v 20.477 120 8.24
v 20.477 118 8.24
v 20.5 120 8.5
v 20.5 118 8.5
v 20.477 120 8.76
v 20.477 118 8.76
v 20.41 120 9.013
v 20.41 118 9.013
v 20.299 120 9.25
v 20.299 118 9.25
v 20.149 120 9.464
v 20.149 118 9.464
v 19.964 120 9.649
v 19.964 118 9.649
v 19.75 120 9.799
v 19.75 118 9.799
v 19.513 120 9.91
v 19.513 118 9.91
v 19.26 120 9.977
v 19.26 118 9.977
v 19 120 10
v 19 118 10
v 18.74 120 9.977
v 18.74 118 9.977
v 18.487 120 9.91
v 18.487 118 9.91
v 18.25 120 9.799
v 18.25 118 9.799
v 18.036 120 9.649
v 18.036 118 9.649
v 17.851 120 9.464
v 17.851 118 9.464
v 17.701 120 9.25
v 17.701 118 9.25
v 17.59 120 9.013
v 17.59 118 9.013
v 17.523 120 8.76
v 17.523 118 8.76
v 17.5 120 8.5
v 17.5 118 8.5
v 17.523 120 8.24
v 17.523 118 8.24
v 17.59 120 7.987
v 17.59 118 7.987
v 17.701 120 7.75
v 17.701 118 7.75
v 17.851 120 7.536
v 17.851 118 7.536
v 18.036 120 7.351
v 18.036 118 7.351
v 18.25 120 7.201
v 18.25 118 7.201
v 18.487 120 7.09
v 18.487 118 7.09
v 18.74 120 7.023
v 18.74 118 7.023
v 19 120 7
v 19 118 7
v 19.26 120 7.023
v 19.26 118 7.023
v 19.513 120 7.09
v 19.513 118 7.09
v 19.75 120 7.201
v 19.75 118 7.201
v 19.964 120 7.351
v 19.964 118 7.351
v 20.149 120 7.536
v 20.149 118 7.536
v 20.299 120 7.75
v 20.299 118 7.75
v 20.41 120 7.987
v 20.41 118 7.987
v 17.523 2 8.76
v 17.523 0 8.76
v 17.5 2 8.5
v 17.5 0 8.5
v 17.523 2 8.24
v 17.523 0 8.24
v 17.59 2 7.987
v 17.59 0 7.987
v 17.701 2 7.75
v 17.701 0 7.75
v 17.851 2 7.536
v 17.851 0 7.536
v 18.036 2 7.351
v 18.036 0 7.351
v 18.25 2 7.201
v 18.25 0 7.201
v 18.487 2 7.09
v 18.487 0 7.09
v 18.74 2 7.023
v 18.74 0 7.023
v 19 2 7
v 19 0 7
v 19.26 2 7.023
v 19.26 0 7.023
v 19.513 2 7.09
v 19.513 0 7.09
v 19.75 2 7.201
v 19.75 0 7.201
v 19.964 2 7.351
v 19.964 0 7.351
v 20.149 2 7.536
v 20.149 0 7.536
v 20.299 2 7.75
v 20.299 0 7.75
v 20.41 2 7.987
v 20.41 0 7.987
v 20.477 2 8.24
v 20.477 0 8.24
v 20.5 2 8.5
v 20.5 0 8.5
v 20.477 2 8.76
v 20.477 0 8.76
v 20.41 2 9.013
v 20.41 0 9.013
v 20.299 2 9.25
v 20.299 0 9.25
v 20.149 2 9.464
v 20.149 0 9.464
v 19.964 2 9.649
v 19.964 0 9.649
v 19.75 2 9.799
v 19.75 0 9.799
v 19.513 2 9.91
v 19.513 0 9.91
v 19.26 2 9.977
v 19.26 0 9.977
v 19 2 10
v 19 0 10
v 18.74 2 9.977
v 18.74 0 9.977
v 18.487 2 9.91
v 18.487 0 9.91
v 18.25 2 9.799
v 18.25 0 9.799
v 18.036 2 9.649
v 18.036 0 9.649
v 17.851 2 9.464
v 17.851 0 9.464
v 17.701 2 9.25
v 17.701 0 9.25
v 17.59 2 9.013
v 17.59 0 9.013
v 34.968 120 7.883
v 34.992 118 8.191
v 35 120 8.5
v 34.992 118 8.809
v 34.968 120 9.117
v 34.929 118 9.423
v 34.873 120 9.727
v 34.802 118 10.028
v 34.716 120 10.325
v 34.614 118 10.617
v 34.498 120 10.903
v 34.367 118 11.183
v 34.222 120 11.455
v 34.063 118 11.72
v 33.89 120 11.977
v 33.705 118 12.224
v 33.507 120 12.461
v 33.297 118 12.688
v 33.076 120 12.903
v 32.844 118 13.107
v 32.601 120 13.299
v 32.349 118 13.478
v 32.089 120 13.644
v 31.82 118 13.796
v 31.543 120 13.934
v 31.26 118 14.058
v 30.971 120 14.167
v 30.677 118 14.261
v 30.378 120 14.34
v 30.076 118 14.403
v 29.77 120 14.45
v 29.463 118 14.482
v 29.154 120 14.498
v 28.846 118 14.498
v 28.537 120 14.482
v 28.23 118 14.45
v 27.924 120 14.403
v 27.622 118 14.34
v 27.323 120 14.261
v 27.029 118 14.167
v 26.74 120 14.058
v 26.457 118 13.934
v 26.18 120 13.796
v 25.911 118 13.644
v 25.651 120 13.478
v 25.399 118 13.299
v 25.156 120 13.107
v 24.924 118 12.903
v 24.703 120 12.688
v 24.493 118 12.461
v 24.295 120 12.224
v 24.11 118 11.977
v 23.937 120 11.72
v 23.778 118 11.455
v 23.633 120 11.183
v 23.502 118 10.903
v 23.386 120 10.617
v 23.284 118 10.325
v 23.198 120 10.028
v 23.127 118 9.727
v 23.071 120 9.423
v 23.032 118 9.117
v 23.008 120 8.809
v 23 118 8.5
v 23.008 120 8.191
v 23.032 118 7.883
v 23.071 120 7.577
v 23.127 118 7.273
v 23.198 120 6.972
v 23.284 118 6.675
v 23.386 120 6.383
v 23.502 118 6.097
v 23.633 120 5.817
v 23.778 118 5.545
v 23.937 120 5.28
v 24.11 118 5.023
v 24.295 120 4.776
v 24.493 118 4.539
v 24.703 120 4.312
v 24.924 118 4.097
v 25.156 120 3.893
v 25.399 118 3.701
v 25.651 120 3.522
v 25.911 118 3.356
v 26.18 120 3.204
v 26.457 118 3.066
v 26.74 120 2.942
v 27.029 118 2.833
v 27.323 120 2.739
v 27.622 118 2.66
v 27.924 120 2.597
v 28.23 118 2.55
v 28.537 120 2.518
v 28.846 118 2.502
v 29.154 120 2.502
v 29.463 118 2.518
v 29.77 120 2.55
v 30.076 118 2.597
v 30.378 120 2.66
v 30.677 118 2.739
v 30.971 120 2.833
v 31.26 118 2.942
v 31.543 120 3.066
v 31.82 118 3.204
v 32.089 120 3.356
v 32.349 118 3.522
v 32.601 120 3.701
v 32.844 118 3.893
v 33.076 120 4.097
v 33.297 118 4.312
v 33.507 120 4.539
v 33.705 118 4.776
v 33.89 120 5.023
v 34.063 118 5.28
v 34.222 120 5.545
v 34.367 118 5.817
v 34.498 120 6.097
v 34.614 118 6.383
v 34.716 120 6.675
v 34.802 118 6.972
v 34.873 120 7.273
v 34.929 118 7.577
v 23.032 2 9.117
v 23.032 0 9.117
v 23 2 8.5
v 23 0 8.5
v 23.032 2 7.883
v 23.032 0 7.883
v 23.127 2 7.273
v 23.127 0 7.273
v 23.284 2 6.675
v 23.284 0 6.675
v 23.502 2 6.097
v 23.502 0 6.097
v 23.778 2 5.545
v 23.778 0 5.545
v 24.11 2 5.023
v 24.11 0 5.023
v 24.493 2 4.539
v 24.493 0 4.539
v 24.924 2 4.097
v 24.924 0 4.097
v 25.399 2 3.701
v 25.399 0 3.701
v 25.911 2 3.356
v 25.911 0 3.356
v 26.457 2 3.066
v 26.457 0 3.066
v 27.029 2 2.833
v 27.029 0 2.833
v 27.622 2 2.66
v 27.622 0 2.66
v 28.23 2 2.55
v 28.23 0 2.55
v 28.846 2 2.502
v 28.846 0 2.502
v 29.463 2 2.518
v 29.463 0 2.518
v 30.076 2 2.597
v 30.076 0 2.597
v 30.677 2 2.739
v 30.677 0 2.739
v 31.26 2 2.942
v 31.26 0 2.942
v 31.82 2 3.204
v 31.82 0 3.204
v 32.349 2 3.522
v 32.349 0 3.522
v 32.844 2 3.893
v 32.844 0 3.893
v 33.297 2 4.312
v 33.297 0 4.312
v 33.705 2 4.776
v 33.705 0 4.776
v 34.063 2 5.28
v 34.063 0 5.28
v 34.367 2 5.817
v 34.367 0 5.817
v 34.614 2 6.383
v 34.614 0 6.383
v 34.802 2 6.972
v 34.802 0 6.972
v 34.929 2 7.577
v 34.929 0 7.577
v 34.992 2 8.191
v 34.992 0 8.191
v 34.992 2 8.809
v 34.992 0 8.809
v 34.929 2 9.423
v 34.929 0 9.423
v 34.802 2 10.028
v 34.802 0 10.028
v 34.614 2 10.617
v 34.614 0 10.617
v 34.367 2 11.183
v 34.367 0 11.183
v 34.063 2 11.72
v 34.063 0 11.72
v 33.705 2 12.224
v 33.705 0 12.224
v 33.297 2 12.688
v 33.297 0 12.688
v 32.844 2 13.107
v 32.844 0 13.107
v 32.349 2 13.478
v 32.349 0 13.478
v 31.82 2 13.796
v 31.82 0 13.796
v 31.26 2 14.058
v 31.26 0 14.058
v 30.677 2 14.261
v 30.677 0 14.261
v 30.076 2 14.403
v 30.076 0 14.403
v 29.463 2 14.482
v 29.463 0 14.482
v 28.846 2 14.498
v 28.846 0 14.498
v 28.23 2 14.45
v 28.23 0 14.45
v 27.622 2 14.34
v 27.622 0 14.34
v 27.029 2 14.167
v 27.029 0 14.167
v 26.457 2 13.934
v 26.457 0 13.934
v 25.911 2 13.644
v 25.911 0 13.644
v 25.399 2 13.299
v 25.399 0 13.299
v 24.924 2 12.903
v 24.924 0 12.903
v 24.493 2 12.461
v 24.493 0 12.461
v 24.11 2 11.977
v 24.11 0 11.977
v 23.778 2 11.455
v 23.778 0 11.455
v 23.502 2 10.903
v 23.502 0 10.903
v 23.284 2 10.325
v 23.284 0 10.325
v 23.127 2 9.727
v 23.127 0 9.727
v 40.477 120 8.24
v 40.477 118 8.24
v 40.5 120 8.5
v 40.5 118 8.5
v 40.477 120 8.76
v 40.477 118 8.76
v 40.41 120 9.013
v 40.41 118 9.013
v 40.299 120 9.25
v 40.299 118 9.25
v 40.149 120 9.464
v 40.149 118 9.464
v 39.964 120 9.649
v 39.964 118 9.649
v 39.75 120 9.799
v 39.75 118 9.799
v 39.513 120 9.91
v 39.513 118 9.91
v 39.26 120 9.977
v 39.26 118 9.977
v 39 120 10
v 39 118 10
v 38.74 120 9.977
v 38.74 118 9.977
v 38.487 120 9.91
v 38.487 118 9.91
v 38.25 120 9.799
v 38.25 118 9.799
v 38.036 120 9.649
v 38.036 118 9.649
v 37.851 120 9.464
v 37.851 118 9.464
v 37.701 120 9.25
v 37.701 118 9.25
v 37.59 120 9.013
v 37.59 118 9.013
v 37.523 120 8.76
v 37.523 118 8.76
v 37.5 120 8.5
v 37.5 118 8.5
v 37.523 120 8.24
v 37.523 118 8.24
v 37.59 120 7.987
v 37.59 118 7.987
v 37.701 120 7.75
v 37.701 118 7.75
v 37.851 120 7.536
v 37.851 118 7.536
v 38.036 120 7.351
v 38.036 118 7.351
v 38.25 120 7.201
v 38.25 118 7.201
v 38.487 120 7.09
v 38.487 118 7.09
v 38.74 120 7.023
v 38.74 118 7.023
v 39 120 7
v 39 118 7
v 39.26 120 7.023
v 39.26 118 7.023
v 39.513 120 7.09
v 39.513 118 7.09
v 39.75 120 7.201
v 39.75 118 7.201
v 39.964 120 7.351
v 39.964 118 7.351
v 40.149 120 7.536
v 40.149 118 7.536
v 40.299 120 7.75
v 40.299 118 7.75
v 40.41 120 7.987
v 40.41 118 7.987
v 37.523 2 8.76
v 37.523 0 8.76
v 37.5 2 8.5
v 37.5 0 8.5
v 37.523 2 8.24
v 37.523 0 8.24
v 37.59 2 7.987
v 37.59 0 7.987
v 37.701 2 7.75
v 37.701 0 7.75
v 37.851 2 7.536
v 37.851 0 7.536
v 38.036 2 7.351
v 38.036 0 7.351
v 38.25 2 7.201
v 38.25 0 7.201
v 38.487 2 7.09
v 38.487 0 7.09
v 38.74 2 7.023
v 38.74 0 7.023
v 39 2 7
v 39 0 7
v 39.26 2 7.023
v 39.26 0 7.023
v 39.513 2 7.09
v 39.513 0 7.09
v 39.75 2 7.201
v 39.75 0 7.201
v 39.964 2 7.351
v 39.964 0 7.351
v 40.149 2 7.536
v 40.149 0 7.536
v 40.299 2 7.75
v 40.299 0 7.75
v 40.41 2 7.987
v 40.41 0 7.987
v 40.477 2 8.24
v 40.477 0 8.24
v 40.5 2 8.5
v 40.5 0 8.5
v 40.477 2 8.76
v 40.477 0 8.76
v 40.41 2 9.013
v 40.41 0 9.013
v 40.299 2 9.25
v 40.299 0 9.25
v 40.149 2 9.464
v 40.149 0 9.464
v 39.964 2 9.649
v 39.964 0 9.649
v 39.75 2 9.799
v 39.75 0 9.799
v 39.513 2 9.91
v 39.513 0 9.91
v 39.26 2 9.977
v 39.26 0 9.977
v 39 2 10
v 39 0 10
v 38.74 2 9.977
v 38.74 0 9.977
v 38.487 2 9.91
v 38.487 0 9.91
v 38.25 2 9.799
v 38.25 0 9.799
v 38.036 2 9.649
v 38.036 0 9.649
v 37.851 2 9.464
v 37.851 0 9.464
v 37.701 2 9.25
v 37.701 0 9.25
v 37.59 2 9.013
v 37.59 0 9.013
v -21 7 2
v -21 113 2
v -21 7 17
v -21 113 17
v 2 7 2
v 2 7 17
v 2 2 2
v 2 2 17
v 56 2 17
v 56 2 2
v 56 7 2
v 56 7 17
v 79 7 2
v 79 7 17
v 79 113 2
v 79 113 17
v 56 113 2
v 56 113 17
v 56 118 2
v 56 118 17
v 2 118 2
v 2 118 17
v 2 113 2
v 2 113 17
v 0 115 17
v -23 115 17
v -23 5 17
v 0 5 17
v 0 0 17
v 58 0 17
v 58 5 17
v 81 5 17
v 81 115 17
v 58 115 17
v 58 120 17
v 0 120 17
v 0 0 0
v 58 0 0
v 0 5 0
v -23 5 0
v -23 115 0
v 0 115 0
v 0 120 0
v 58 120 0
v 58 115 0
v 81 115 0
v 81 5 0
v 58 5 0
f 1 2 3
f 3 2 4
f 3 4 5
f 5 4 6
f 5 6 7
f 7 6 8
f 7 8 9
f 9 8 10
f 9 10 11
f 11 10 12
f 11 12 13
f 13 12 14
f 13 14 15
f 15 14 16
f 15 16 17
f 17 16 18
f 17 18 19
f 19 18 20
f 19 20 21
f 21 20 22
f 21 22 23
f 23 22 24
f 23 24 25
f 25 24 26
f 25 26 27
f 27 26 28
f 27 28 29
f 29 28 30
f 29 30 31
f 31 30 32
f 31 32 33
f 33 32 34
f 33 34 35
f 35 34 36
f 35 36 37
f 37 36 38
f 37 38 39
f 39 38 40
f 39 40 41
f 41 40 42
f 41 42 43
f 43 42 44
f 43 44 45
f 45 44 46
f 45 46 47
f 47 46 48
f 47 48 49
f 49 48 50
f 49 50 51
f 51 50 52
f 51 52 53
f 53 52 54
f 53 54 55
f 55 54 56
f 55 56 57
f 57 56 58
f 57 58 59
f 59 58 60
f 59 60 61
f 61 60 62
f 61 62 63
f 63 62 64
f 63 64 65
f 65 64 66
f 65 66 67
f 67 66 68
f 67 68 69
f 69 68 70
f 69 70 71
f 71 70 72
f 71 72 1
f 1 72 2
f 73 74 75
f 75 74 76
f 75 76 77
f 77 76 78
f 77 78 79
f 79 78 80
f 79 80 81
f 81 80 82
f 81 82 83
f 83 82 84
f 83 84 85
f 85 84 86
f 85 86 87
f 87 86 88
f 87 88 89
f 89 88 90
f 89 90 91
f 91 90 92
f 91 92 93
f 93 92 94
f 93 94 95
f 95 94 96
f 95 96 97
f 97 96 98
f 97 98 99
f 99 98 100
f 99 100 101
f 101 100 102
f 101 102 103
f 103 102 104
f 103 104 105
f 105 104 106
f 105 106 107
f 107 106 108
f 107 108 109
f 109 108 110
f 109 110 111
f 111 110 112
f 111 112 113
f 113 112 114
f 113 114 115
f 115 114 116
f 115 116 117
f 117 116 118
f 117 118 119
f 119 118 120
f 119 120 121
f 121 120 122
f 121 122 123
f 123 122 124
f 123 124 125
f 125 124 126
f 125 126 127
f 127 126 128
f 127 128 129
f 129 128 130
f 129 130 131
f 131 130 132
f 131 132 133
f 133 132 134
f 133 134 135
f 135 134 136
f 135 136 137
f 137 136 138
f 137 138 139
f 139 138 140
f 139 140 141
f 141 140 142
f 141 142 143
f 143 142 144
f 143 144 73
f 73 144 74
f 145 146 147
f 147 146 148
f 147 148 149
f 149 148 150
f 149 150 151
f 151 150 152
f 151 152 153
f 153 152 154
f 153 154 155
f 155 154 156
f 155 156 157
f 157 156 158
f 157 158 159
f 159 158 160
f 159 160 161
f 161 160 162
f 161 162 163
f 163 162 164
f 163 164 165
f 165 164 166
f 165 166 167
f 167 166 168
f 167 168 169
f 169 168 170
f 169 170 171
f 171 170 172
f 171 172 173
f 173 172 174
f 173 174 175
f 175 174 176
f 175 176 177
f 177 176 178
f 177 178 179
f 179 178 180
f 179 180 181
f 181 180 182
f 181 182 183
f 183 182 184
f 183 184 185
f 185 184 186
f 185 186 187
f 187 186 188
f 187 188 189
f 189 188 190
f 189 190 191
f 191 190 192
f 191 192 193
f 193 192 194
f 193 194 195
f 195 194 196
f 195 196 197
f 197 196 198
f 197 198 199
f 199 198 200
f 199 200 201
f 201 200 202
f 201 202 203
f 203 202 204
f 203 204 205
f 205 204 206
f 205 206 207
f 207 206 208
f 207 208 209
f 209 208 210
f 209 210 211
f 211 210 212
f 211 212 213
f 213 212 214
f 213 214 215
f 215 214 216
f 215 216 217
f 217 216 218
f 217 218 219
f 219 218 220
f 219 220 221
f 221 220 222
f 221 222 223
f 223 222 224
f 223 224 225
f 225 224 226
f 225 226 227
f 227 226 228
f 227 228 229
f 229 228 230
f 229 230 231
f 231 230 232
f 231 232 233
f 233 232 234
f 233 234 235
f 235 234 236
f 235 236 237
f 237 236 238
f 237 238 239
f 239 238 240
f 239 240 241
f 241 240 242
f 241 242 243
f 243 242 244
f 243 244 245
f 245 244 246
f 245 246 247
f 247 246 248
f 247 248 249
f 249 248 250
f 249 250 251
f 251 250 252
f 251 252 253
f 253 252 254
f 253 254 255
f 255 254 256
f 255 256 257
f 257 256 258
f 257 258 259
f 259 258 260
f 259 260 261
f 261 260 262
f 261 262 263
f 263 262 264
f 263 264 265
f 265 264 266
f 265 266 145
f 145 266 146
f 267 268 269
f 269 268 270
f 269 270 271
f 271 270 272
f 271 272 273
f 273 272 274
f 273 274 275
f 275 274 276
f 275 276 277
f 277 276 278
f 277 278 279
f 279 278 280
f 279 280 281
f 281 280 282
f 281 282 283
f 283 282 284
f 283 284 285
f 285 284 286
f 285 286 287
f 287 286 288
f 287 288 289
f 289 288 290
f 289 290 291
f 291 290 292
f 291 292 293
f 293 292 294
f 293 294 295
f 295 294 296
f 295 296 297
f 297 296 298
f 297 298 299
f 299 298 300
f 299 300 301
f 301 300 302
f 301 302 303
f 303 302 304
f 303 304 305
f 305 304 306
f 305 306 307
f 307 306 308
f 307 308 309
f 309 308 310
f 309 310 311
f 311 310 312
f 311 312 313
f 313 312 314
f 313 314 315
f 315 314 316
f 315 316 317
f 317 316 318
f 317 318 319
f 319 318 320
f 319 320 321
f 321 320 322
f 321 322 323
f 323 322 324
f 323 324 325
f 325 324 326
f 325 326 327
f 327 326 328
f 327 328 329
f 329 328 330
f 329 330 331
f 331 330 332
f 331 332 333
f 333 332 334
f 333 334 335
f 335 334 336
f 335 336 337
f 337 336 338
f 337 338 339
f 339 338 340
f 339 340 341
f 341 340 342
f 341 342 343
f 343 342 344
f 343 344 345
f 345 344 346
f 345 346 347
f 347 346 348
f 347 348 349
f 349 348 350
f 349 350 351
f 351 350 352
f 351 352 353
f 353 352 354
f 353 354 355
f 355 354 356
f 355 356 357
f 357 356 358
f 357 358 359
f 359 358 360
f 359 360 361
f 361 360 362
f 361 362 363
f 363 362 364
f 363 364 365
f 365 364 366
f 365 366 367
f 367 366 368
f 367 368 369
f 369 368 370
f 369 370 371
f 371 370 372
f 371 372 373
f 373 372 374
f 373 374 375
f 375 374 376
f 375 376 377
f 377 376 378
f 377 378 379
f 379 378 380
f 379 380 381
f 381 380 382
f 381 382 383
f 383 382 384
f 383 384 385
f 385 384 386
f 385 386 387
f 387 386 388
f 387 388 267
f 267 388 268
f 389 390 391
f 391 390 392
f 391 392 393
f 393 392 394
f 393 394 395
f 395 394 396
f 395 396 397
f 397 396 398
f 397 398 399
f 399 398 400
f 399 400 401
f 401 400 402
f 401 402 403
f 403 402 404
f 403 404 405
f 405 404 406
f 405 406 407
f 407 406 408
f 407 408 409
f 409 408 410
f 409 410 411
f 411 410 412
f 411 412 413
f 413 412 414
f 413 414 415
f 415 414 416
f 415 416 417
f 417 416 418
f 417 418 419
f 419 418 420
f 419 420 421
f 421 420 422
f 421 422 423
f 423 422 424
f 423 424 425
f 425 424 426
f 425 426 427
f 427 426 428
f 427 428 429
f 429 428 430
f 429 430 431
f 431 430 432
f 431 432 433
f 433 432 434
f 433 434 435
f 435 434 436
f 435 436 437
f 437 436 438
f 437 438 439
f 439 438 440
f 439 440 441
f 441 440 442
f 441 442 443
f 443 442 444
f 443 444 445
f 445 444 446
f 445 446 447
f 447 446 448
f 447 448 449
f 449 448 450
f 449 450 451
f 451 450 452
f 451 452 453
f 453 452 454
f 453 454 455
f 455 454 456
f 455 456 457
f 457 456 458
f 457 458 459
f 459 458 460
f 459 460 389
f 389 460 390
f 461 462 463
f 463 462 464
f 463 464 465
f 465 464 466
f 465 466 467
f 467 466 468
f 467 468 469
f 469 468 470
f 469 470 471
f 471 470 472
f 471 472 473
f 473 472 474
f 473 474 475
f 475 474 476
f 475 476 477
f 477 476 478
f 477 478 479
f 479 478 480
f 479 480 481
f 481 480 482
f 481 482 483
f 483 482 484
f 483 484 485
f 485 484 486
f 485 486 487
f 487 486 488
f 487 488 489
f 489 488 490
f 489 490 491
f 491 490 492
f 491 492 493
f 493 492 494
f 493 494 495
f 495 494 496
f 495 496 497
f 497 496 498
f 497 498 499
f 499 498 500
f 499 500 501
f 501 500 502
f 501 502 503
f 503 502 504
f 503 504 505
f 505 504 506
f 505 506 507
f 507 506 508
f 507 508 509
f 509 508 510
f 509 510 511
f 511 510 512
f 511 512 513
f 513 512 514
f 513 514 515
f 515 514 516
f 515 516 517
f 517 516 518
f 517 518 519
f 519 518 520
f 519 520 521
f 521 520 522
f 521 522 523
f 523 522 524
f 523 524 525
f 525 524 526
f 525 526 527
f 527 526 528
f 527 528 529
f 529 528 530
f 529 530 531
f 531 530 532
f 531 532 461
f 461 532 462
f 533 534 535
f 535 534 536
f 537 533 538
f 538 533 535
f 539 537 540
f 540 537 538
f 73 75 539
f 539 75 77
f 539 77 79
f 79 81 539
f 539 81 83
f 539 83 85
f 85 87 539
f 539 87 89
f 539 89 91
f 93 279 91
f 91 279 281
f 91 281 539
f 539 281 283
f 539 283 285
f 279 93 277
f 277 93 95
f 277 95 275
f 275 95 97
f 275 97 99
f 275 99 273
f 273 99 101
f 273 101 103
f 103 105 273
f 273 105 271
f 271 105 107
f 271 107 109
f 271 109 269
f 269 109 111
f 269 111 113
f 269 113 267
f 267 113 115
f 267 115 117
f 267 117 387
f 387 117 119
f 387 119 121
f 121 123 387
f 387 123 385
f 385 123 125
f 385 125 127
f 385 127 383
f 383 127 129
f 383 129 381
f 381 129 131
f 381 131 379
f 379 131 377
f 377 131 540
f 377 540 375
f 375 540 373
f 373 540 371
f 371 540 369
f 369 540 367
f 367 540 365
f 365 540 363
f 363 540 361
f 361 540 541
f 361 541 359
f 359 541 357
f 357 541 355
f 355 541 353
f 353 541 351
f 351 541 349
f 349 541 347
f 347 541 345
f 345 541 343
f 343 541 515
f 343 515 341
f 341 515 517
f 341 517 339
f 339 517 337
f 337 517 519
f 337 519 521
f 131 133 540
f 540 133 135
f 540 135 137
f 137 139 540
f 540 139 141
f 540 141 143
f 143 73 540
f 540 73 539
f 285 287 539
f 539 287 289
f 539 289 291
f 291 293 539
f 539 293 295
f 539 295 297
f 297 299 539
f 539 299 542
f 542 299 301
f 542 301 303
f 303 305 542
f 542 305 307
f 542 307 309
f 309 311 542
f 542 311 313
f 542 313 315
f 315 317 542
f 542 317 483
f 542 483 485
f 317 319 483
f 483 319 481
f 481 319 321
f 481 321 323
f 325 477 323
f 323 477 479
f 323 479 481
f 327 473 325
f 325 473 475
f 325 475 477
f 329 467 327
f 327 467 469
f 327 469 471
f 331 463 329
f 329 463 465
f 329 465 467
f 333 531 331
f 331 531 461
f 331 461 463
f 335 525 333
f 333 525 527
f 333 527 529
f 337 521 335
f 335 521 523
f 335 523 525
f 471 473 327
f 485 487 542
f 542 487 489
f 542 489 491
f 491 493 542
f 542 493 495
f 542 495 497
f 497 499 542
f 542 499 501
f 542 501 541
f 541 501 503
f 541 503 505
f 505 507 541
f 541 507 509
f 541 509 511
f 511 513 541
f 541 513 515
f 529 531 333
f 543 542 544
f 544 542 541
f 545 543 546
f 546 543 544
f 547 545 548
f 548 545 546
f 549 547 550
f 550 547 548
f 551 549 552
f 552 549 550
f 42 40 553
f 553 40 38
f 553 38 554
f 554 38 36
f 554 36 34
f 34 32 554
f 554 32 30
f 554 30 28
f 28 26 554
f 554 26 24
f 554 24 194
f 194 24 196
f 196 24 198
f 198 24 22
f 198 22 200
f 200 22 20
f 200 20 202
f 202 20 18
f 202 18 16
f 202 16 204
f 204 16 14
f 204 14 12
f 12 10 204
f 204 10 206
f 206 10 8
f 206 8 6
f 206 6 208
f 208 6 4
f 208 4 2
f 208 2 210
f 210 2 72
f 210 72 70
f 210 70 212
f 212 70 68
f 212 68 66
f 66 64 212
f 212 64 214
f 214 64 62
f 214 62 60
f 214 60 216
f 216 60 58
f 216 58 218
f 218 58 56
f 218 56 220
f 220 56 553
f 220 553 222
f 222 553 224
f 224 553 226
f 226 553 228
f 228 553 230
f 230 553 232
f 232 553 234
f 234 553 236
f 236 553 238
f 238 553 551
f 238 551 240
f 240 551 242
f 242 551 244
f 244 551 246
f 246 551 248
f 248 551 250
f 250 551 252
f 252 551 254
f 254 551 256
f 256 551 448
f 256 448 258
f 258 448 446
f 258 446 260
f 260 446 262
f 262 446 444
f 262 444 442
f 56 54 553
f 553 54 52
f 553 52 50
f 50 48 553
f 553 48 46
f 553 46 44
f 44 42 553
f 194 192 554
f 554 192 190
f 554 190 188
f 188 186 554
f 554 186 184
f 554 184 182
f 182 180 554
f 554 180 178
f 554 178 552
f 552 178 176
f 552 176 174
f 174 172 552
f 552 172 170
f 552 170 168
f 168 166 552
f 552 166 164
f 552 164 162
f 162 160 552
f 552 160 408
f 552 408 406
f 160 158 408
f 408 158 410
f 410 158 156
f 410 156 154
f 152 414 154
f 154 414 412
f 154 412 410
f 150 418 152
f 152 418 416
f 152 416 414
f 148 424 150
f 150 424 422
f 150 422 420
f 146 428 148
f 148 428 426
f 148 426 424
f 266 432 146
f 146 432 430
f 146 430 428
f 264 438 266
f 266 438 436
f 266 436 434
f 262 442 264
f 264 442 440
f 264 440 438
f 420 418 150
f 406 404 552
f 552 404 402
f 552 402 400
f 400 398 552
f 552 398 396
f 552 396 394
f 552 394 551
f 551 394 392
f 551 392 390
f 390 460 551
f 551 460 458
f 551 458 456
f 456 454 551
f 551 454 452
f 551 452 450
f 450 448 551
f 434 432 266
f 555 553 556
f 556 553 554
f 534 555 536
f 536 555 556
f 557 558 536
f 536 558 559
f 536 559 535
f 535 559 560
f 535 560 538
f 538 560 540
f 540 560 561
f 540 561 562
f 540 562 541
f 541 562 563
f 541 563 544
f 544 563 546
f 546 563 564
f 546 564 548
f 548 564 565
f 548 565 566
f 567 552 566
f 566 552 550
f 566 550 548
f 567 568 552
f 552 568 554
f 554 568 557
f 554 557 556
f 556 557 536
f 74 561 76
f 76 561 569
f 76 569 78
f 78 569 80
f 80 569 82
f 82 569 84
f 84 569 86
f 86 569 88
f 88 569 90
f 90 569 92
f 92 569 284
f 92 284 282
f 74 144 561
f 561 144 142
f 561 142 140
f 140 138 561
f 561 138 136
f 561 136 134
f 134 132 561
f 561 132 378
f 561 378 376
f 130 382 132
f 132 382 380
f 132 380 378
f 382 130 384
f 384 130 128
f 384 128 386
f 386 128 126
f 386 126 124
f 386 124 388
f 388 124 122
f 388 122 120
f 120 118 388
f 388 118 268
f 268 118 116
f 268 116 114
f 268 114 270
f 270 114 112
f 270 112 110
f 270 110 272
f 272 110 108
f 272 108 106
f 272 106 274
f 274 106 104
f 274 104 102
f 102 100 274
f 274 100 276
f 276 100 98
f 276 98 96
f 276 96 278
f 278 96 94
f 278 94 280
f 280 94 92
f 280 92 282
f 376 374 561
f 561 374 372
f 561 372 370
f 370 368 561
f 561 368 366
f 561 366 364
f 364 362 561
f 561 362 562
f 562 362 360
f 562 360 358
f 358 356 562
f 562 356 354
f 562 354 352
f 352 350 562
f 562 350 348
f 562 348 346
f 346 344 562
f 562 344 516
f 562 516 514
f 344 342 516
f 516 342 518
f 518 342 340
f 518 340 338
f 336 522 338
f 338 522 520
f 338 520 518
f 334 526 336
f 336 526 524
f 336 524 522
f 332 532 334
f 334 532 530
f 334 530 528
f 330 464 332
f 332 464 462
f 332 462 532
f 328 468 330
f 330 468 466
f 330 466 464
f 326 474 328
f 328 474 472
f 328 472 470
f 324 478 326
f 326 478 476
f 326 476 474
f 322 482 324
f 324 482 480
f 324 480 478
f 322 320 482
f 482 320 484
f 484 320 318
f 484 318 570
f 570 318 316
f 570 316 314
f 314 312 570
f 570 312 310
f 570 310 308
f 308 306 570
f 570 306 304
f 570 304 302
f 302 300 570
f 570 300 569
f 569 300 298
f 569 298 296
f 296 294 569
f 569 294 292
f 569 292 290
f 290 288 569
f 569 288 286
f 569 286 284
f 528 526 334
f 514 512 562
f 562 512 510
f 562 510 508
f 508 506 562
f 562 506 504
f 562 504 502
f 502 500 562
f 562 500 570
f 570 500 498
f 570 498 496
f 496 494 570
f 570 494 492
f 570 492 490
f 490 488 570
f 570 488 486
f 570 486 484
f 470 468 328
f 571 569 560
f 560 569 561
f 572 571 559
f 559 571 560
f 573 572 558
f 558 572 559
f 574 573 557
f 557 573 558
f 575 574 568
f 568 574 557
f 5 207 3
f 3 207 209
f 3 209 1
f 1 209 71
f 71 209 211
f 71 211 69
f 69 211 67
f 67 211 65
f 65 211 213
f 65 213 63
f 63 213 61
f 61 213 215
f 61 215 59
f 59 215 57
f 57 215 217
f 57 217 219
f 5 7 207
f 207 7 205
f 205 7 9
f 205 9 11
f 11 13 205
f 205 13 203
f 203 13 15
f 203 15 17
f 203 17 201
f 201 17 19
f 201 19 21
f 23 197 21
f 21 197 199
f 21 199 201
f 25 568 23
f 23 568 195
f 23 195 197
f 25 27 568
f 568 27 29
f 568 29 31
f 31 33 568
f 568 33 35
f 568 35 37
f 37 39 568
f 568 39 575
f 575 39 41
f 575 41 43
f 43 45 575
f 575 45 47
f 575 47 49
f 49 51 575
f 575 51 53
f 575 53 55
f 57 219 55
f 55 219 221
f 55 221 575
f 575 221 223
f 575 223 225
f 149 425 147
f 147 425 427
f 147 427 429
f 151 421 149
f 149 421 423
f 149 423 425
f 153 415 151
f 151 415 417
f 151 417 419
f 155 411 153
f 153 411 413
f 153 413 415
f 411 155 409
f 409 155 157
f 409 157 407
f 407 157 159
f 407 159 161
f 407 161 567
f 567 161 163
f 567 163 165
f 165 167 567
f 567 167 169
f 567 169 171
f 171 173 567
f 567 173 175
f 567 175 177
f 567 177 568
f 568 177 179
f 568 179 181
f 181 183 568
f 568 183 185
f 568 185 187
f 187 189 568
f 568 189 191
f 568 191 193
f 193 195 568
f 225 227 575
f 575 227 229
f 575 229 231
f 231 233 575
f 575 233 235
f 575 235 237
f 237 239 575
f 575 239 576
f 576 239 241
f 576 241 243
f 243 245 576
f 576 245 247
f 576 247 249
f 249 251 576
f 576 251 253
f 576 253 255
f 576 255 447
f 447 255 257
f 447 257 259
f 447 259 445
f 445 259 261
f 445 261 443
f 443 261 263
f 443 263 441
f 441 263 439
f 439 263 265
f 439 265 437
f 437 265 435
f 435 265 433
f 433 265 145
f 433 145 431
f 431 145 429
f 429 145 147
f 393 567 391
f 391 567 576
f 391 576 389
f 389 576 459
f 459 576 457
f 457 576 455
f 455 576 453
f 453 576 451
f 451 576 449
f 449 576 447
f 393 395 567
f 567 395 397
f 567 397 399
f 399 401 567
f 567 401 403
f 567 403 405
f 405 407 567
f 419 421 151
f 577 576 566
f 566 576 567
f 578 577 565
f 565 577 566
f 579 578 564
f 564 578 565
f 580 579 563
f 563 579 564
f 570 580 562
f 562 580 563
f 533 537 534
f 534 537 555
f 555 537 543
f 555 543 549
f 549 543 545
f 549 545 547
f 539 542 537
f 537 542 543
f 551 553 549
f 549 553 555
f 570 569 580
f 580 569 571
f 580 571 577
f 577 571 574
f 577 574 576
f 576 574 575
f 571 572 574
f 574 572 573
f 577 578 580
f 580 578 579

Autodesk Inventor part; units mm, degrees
ref_plane "YZ Plane" through (0, 0, 0) normal (1, 0, 0) x (0, 1, 0)
ref_plane "XZ Plane" through (0, 0, 0) normal (0, 1, 0) x (-1, 0, 0)
ref_plane "XY Plane" through (0, 0, 0) normal (0, 0, 1) x (1, 0, 0)
sketch "Sketch1" plane through (0, 0, 0) normal (0, 0, 1) x (1, 0, 0)
  line L0 (0, 0) -> (58, 0)
  line L1 (58, 0) -> (58, 120)
  line L2 (58, 120) -> (0, 120)
  line L3 (0, 120) -> (0, 0)
  line L4 (58, 115) -> (81, 115)
  line L5 (81, 115) -> (81, 5)
  line L6 (81, 5) -> (58, 5)
  line L7 (58, 5) -> (58, 115)
  line L8 (0, 115) -> (-23, 115)
  line L9 (-23, 115) -> (-23, 5)
  line L10 (-23, 5) -> (0, 5)
  line L11 (0, 5) -> (0, 115)
  point P0 (0, 5)
  dimension "d0" = 58
  dimension "d1" = 120
  dimension "d20" = 23
  dimension "d21" = 5
  dimension "d22" = 5
  dimension "d26" = 23
  dimension "d27" = 5
  dimension "d28" = 5
extrude "Extrusion1" add sketch "Sketch1" along normal blind 2
sketch "Sketch2" plane through (0, 0, 2) normal (0, 0, 1) x (1, 0, 0)
  line L0 (58, 120) -> (0, 120) projected
  line L1 (58, 0) -> (58, 120) projected
  line L2 (0, 120) -> (58, 120)
  line L3 (58, 120) -> (58, 0)
  line L4 (58, 0) -> (0, 0)
  line L5 (0, 0) -> (0, 120)
  line L6 (2, 118) -> (56, 118)
  line L7 (56, 118) -> (56, 2)
  line L8 (56, 2) -> (2, 2)
  line L9 (2, 2) -> (2, 118)
  line L10 (-23, 115) -> (-23, 5) projected
  line L11 (-23, 115) -> (2, 115)
  line L12 (2, 115) -> (2, 55.5525)
  line L13 (-23, 5) -> (-23, 115)
  line L14 (-21, 113) -> (2, 113)
  line L15 (0, 113) -> (0, 57.5525)
  line L16 (-21, 7) -> (-21, 113)
  line L17 (-21, 7) -> (2, 7)
  line L18 (-23, 5) -> (0, 5) projected
  line L19 (-23, 5) -> (2, 5)
  line L20 (81, 115) -> (58, 115) projected
  line L21 (58, 115) -> (81, 115)
  line L22 (81, 115) -> (81, 5)
  line L23 (58, 5) -> (81, 5) projected
  line L24 (81, 5) -> (58, 5)
  line L25 (56, 7) -> (79, 7)
  line L26 (79, 7) -> (79, 113)
  line L27 (79, 113) -> (56, 113)
  point P0 (0, 0)
  point P1 (0, 115)
  point P2 (2, 113)
  point P3 (2, 7)
  dimension "d4" = 2
  dimension "d5" = 2
  dimension "d6" = 2
  dimension "d7" = 2
  dimension "d30" = 2
  dimension "d31" = 2
  dimension "d32" = 2
  dimension "d33" = 2
  dimension "d34" = 2
  dimension "d35" = 2
extrude "Extrusion2" add sketch "Sketch2" along normal blind 15 contours L1 L27 L7 L6 L9 L11 L5 L0 | L20 L22 L23 L1 L25 L26 L27 | L11 L9 L14 L5 | L5 L14 L16 L17 L18 L10 L11 | L1 L4 L5 L19 L9 L8 L7 L25 | L17 L9 L19 L5
sketch "Sketch6" plane through (0, 120, 0) normal (0, 1, 0) x (1, 0, 0)
  circle A0 centre (29, -8.5) radius 6
  circle A1 centre (39, -8.5) radius 1.5
  circle A2 centre (19, -8.5) radius 1.5
  line L0 (58, 0) -> (0, 0) projected
  line L1 (58, 0) -> (58, -17) projected
  line L2 (0, 0) -> (0, -17) projected
  dimension "d46" = 12
  dimension "d47" = 3
  dimension "d48" = 3
  dimension "d49" = 10
  dimension "d50" = 10
  dimension "d51" = 8.5
  dimension "d52" = 8.5
  dimension "d53" = 8.5
  dimension "d54" = 58
  dimension "d55" = 29
extrude "Extrusion4" cut sketch "Sketch6" against normal up to surface (120 mm away)
equation "\"d52\" = d51"
equation "\"d53\" = d51"
equation "\"d55\" = 0.5 * d54"
properties part number "corpo2"
